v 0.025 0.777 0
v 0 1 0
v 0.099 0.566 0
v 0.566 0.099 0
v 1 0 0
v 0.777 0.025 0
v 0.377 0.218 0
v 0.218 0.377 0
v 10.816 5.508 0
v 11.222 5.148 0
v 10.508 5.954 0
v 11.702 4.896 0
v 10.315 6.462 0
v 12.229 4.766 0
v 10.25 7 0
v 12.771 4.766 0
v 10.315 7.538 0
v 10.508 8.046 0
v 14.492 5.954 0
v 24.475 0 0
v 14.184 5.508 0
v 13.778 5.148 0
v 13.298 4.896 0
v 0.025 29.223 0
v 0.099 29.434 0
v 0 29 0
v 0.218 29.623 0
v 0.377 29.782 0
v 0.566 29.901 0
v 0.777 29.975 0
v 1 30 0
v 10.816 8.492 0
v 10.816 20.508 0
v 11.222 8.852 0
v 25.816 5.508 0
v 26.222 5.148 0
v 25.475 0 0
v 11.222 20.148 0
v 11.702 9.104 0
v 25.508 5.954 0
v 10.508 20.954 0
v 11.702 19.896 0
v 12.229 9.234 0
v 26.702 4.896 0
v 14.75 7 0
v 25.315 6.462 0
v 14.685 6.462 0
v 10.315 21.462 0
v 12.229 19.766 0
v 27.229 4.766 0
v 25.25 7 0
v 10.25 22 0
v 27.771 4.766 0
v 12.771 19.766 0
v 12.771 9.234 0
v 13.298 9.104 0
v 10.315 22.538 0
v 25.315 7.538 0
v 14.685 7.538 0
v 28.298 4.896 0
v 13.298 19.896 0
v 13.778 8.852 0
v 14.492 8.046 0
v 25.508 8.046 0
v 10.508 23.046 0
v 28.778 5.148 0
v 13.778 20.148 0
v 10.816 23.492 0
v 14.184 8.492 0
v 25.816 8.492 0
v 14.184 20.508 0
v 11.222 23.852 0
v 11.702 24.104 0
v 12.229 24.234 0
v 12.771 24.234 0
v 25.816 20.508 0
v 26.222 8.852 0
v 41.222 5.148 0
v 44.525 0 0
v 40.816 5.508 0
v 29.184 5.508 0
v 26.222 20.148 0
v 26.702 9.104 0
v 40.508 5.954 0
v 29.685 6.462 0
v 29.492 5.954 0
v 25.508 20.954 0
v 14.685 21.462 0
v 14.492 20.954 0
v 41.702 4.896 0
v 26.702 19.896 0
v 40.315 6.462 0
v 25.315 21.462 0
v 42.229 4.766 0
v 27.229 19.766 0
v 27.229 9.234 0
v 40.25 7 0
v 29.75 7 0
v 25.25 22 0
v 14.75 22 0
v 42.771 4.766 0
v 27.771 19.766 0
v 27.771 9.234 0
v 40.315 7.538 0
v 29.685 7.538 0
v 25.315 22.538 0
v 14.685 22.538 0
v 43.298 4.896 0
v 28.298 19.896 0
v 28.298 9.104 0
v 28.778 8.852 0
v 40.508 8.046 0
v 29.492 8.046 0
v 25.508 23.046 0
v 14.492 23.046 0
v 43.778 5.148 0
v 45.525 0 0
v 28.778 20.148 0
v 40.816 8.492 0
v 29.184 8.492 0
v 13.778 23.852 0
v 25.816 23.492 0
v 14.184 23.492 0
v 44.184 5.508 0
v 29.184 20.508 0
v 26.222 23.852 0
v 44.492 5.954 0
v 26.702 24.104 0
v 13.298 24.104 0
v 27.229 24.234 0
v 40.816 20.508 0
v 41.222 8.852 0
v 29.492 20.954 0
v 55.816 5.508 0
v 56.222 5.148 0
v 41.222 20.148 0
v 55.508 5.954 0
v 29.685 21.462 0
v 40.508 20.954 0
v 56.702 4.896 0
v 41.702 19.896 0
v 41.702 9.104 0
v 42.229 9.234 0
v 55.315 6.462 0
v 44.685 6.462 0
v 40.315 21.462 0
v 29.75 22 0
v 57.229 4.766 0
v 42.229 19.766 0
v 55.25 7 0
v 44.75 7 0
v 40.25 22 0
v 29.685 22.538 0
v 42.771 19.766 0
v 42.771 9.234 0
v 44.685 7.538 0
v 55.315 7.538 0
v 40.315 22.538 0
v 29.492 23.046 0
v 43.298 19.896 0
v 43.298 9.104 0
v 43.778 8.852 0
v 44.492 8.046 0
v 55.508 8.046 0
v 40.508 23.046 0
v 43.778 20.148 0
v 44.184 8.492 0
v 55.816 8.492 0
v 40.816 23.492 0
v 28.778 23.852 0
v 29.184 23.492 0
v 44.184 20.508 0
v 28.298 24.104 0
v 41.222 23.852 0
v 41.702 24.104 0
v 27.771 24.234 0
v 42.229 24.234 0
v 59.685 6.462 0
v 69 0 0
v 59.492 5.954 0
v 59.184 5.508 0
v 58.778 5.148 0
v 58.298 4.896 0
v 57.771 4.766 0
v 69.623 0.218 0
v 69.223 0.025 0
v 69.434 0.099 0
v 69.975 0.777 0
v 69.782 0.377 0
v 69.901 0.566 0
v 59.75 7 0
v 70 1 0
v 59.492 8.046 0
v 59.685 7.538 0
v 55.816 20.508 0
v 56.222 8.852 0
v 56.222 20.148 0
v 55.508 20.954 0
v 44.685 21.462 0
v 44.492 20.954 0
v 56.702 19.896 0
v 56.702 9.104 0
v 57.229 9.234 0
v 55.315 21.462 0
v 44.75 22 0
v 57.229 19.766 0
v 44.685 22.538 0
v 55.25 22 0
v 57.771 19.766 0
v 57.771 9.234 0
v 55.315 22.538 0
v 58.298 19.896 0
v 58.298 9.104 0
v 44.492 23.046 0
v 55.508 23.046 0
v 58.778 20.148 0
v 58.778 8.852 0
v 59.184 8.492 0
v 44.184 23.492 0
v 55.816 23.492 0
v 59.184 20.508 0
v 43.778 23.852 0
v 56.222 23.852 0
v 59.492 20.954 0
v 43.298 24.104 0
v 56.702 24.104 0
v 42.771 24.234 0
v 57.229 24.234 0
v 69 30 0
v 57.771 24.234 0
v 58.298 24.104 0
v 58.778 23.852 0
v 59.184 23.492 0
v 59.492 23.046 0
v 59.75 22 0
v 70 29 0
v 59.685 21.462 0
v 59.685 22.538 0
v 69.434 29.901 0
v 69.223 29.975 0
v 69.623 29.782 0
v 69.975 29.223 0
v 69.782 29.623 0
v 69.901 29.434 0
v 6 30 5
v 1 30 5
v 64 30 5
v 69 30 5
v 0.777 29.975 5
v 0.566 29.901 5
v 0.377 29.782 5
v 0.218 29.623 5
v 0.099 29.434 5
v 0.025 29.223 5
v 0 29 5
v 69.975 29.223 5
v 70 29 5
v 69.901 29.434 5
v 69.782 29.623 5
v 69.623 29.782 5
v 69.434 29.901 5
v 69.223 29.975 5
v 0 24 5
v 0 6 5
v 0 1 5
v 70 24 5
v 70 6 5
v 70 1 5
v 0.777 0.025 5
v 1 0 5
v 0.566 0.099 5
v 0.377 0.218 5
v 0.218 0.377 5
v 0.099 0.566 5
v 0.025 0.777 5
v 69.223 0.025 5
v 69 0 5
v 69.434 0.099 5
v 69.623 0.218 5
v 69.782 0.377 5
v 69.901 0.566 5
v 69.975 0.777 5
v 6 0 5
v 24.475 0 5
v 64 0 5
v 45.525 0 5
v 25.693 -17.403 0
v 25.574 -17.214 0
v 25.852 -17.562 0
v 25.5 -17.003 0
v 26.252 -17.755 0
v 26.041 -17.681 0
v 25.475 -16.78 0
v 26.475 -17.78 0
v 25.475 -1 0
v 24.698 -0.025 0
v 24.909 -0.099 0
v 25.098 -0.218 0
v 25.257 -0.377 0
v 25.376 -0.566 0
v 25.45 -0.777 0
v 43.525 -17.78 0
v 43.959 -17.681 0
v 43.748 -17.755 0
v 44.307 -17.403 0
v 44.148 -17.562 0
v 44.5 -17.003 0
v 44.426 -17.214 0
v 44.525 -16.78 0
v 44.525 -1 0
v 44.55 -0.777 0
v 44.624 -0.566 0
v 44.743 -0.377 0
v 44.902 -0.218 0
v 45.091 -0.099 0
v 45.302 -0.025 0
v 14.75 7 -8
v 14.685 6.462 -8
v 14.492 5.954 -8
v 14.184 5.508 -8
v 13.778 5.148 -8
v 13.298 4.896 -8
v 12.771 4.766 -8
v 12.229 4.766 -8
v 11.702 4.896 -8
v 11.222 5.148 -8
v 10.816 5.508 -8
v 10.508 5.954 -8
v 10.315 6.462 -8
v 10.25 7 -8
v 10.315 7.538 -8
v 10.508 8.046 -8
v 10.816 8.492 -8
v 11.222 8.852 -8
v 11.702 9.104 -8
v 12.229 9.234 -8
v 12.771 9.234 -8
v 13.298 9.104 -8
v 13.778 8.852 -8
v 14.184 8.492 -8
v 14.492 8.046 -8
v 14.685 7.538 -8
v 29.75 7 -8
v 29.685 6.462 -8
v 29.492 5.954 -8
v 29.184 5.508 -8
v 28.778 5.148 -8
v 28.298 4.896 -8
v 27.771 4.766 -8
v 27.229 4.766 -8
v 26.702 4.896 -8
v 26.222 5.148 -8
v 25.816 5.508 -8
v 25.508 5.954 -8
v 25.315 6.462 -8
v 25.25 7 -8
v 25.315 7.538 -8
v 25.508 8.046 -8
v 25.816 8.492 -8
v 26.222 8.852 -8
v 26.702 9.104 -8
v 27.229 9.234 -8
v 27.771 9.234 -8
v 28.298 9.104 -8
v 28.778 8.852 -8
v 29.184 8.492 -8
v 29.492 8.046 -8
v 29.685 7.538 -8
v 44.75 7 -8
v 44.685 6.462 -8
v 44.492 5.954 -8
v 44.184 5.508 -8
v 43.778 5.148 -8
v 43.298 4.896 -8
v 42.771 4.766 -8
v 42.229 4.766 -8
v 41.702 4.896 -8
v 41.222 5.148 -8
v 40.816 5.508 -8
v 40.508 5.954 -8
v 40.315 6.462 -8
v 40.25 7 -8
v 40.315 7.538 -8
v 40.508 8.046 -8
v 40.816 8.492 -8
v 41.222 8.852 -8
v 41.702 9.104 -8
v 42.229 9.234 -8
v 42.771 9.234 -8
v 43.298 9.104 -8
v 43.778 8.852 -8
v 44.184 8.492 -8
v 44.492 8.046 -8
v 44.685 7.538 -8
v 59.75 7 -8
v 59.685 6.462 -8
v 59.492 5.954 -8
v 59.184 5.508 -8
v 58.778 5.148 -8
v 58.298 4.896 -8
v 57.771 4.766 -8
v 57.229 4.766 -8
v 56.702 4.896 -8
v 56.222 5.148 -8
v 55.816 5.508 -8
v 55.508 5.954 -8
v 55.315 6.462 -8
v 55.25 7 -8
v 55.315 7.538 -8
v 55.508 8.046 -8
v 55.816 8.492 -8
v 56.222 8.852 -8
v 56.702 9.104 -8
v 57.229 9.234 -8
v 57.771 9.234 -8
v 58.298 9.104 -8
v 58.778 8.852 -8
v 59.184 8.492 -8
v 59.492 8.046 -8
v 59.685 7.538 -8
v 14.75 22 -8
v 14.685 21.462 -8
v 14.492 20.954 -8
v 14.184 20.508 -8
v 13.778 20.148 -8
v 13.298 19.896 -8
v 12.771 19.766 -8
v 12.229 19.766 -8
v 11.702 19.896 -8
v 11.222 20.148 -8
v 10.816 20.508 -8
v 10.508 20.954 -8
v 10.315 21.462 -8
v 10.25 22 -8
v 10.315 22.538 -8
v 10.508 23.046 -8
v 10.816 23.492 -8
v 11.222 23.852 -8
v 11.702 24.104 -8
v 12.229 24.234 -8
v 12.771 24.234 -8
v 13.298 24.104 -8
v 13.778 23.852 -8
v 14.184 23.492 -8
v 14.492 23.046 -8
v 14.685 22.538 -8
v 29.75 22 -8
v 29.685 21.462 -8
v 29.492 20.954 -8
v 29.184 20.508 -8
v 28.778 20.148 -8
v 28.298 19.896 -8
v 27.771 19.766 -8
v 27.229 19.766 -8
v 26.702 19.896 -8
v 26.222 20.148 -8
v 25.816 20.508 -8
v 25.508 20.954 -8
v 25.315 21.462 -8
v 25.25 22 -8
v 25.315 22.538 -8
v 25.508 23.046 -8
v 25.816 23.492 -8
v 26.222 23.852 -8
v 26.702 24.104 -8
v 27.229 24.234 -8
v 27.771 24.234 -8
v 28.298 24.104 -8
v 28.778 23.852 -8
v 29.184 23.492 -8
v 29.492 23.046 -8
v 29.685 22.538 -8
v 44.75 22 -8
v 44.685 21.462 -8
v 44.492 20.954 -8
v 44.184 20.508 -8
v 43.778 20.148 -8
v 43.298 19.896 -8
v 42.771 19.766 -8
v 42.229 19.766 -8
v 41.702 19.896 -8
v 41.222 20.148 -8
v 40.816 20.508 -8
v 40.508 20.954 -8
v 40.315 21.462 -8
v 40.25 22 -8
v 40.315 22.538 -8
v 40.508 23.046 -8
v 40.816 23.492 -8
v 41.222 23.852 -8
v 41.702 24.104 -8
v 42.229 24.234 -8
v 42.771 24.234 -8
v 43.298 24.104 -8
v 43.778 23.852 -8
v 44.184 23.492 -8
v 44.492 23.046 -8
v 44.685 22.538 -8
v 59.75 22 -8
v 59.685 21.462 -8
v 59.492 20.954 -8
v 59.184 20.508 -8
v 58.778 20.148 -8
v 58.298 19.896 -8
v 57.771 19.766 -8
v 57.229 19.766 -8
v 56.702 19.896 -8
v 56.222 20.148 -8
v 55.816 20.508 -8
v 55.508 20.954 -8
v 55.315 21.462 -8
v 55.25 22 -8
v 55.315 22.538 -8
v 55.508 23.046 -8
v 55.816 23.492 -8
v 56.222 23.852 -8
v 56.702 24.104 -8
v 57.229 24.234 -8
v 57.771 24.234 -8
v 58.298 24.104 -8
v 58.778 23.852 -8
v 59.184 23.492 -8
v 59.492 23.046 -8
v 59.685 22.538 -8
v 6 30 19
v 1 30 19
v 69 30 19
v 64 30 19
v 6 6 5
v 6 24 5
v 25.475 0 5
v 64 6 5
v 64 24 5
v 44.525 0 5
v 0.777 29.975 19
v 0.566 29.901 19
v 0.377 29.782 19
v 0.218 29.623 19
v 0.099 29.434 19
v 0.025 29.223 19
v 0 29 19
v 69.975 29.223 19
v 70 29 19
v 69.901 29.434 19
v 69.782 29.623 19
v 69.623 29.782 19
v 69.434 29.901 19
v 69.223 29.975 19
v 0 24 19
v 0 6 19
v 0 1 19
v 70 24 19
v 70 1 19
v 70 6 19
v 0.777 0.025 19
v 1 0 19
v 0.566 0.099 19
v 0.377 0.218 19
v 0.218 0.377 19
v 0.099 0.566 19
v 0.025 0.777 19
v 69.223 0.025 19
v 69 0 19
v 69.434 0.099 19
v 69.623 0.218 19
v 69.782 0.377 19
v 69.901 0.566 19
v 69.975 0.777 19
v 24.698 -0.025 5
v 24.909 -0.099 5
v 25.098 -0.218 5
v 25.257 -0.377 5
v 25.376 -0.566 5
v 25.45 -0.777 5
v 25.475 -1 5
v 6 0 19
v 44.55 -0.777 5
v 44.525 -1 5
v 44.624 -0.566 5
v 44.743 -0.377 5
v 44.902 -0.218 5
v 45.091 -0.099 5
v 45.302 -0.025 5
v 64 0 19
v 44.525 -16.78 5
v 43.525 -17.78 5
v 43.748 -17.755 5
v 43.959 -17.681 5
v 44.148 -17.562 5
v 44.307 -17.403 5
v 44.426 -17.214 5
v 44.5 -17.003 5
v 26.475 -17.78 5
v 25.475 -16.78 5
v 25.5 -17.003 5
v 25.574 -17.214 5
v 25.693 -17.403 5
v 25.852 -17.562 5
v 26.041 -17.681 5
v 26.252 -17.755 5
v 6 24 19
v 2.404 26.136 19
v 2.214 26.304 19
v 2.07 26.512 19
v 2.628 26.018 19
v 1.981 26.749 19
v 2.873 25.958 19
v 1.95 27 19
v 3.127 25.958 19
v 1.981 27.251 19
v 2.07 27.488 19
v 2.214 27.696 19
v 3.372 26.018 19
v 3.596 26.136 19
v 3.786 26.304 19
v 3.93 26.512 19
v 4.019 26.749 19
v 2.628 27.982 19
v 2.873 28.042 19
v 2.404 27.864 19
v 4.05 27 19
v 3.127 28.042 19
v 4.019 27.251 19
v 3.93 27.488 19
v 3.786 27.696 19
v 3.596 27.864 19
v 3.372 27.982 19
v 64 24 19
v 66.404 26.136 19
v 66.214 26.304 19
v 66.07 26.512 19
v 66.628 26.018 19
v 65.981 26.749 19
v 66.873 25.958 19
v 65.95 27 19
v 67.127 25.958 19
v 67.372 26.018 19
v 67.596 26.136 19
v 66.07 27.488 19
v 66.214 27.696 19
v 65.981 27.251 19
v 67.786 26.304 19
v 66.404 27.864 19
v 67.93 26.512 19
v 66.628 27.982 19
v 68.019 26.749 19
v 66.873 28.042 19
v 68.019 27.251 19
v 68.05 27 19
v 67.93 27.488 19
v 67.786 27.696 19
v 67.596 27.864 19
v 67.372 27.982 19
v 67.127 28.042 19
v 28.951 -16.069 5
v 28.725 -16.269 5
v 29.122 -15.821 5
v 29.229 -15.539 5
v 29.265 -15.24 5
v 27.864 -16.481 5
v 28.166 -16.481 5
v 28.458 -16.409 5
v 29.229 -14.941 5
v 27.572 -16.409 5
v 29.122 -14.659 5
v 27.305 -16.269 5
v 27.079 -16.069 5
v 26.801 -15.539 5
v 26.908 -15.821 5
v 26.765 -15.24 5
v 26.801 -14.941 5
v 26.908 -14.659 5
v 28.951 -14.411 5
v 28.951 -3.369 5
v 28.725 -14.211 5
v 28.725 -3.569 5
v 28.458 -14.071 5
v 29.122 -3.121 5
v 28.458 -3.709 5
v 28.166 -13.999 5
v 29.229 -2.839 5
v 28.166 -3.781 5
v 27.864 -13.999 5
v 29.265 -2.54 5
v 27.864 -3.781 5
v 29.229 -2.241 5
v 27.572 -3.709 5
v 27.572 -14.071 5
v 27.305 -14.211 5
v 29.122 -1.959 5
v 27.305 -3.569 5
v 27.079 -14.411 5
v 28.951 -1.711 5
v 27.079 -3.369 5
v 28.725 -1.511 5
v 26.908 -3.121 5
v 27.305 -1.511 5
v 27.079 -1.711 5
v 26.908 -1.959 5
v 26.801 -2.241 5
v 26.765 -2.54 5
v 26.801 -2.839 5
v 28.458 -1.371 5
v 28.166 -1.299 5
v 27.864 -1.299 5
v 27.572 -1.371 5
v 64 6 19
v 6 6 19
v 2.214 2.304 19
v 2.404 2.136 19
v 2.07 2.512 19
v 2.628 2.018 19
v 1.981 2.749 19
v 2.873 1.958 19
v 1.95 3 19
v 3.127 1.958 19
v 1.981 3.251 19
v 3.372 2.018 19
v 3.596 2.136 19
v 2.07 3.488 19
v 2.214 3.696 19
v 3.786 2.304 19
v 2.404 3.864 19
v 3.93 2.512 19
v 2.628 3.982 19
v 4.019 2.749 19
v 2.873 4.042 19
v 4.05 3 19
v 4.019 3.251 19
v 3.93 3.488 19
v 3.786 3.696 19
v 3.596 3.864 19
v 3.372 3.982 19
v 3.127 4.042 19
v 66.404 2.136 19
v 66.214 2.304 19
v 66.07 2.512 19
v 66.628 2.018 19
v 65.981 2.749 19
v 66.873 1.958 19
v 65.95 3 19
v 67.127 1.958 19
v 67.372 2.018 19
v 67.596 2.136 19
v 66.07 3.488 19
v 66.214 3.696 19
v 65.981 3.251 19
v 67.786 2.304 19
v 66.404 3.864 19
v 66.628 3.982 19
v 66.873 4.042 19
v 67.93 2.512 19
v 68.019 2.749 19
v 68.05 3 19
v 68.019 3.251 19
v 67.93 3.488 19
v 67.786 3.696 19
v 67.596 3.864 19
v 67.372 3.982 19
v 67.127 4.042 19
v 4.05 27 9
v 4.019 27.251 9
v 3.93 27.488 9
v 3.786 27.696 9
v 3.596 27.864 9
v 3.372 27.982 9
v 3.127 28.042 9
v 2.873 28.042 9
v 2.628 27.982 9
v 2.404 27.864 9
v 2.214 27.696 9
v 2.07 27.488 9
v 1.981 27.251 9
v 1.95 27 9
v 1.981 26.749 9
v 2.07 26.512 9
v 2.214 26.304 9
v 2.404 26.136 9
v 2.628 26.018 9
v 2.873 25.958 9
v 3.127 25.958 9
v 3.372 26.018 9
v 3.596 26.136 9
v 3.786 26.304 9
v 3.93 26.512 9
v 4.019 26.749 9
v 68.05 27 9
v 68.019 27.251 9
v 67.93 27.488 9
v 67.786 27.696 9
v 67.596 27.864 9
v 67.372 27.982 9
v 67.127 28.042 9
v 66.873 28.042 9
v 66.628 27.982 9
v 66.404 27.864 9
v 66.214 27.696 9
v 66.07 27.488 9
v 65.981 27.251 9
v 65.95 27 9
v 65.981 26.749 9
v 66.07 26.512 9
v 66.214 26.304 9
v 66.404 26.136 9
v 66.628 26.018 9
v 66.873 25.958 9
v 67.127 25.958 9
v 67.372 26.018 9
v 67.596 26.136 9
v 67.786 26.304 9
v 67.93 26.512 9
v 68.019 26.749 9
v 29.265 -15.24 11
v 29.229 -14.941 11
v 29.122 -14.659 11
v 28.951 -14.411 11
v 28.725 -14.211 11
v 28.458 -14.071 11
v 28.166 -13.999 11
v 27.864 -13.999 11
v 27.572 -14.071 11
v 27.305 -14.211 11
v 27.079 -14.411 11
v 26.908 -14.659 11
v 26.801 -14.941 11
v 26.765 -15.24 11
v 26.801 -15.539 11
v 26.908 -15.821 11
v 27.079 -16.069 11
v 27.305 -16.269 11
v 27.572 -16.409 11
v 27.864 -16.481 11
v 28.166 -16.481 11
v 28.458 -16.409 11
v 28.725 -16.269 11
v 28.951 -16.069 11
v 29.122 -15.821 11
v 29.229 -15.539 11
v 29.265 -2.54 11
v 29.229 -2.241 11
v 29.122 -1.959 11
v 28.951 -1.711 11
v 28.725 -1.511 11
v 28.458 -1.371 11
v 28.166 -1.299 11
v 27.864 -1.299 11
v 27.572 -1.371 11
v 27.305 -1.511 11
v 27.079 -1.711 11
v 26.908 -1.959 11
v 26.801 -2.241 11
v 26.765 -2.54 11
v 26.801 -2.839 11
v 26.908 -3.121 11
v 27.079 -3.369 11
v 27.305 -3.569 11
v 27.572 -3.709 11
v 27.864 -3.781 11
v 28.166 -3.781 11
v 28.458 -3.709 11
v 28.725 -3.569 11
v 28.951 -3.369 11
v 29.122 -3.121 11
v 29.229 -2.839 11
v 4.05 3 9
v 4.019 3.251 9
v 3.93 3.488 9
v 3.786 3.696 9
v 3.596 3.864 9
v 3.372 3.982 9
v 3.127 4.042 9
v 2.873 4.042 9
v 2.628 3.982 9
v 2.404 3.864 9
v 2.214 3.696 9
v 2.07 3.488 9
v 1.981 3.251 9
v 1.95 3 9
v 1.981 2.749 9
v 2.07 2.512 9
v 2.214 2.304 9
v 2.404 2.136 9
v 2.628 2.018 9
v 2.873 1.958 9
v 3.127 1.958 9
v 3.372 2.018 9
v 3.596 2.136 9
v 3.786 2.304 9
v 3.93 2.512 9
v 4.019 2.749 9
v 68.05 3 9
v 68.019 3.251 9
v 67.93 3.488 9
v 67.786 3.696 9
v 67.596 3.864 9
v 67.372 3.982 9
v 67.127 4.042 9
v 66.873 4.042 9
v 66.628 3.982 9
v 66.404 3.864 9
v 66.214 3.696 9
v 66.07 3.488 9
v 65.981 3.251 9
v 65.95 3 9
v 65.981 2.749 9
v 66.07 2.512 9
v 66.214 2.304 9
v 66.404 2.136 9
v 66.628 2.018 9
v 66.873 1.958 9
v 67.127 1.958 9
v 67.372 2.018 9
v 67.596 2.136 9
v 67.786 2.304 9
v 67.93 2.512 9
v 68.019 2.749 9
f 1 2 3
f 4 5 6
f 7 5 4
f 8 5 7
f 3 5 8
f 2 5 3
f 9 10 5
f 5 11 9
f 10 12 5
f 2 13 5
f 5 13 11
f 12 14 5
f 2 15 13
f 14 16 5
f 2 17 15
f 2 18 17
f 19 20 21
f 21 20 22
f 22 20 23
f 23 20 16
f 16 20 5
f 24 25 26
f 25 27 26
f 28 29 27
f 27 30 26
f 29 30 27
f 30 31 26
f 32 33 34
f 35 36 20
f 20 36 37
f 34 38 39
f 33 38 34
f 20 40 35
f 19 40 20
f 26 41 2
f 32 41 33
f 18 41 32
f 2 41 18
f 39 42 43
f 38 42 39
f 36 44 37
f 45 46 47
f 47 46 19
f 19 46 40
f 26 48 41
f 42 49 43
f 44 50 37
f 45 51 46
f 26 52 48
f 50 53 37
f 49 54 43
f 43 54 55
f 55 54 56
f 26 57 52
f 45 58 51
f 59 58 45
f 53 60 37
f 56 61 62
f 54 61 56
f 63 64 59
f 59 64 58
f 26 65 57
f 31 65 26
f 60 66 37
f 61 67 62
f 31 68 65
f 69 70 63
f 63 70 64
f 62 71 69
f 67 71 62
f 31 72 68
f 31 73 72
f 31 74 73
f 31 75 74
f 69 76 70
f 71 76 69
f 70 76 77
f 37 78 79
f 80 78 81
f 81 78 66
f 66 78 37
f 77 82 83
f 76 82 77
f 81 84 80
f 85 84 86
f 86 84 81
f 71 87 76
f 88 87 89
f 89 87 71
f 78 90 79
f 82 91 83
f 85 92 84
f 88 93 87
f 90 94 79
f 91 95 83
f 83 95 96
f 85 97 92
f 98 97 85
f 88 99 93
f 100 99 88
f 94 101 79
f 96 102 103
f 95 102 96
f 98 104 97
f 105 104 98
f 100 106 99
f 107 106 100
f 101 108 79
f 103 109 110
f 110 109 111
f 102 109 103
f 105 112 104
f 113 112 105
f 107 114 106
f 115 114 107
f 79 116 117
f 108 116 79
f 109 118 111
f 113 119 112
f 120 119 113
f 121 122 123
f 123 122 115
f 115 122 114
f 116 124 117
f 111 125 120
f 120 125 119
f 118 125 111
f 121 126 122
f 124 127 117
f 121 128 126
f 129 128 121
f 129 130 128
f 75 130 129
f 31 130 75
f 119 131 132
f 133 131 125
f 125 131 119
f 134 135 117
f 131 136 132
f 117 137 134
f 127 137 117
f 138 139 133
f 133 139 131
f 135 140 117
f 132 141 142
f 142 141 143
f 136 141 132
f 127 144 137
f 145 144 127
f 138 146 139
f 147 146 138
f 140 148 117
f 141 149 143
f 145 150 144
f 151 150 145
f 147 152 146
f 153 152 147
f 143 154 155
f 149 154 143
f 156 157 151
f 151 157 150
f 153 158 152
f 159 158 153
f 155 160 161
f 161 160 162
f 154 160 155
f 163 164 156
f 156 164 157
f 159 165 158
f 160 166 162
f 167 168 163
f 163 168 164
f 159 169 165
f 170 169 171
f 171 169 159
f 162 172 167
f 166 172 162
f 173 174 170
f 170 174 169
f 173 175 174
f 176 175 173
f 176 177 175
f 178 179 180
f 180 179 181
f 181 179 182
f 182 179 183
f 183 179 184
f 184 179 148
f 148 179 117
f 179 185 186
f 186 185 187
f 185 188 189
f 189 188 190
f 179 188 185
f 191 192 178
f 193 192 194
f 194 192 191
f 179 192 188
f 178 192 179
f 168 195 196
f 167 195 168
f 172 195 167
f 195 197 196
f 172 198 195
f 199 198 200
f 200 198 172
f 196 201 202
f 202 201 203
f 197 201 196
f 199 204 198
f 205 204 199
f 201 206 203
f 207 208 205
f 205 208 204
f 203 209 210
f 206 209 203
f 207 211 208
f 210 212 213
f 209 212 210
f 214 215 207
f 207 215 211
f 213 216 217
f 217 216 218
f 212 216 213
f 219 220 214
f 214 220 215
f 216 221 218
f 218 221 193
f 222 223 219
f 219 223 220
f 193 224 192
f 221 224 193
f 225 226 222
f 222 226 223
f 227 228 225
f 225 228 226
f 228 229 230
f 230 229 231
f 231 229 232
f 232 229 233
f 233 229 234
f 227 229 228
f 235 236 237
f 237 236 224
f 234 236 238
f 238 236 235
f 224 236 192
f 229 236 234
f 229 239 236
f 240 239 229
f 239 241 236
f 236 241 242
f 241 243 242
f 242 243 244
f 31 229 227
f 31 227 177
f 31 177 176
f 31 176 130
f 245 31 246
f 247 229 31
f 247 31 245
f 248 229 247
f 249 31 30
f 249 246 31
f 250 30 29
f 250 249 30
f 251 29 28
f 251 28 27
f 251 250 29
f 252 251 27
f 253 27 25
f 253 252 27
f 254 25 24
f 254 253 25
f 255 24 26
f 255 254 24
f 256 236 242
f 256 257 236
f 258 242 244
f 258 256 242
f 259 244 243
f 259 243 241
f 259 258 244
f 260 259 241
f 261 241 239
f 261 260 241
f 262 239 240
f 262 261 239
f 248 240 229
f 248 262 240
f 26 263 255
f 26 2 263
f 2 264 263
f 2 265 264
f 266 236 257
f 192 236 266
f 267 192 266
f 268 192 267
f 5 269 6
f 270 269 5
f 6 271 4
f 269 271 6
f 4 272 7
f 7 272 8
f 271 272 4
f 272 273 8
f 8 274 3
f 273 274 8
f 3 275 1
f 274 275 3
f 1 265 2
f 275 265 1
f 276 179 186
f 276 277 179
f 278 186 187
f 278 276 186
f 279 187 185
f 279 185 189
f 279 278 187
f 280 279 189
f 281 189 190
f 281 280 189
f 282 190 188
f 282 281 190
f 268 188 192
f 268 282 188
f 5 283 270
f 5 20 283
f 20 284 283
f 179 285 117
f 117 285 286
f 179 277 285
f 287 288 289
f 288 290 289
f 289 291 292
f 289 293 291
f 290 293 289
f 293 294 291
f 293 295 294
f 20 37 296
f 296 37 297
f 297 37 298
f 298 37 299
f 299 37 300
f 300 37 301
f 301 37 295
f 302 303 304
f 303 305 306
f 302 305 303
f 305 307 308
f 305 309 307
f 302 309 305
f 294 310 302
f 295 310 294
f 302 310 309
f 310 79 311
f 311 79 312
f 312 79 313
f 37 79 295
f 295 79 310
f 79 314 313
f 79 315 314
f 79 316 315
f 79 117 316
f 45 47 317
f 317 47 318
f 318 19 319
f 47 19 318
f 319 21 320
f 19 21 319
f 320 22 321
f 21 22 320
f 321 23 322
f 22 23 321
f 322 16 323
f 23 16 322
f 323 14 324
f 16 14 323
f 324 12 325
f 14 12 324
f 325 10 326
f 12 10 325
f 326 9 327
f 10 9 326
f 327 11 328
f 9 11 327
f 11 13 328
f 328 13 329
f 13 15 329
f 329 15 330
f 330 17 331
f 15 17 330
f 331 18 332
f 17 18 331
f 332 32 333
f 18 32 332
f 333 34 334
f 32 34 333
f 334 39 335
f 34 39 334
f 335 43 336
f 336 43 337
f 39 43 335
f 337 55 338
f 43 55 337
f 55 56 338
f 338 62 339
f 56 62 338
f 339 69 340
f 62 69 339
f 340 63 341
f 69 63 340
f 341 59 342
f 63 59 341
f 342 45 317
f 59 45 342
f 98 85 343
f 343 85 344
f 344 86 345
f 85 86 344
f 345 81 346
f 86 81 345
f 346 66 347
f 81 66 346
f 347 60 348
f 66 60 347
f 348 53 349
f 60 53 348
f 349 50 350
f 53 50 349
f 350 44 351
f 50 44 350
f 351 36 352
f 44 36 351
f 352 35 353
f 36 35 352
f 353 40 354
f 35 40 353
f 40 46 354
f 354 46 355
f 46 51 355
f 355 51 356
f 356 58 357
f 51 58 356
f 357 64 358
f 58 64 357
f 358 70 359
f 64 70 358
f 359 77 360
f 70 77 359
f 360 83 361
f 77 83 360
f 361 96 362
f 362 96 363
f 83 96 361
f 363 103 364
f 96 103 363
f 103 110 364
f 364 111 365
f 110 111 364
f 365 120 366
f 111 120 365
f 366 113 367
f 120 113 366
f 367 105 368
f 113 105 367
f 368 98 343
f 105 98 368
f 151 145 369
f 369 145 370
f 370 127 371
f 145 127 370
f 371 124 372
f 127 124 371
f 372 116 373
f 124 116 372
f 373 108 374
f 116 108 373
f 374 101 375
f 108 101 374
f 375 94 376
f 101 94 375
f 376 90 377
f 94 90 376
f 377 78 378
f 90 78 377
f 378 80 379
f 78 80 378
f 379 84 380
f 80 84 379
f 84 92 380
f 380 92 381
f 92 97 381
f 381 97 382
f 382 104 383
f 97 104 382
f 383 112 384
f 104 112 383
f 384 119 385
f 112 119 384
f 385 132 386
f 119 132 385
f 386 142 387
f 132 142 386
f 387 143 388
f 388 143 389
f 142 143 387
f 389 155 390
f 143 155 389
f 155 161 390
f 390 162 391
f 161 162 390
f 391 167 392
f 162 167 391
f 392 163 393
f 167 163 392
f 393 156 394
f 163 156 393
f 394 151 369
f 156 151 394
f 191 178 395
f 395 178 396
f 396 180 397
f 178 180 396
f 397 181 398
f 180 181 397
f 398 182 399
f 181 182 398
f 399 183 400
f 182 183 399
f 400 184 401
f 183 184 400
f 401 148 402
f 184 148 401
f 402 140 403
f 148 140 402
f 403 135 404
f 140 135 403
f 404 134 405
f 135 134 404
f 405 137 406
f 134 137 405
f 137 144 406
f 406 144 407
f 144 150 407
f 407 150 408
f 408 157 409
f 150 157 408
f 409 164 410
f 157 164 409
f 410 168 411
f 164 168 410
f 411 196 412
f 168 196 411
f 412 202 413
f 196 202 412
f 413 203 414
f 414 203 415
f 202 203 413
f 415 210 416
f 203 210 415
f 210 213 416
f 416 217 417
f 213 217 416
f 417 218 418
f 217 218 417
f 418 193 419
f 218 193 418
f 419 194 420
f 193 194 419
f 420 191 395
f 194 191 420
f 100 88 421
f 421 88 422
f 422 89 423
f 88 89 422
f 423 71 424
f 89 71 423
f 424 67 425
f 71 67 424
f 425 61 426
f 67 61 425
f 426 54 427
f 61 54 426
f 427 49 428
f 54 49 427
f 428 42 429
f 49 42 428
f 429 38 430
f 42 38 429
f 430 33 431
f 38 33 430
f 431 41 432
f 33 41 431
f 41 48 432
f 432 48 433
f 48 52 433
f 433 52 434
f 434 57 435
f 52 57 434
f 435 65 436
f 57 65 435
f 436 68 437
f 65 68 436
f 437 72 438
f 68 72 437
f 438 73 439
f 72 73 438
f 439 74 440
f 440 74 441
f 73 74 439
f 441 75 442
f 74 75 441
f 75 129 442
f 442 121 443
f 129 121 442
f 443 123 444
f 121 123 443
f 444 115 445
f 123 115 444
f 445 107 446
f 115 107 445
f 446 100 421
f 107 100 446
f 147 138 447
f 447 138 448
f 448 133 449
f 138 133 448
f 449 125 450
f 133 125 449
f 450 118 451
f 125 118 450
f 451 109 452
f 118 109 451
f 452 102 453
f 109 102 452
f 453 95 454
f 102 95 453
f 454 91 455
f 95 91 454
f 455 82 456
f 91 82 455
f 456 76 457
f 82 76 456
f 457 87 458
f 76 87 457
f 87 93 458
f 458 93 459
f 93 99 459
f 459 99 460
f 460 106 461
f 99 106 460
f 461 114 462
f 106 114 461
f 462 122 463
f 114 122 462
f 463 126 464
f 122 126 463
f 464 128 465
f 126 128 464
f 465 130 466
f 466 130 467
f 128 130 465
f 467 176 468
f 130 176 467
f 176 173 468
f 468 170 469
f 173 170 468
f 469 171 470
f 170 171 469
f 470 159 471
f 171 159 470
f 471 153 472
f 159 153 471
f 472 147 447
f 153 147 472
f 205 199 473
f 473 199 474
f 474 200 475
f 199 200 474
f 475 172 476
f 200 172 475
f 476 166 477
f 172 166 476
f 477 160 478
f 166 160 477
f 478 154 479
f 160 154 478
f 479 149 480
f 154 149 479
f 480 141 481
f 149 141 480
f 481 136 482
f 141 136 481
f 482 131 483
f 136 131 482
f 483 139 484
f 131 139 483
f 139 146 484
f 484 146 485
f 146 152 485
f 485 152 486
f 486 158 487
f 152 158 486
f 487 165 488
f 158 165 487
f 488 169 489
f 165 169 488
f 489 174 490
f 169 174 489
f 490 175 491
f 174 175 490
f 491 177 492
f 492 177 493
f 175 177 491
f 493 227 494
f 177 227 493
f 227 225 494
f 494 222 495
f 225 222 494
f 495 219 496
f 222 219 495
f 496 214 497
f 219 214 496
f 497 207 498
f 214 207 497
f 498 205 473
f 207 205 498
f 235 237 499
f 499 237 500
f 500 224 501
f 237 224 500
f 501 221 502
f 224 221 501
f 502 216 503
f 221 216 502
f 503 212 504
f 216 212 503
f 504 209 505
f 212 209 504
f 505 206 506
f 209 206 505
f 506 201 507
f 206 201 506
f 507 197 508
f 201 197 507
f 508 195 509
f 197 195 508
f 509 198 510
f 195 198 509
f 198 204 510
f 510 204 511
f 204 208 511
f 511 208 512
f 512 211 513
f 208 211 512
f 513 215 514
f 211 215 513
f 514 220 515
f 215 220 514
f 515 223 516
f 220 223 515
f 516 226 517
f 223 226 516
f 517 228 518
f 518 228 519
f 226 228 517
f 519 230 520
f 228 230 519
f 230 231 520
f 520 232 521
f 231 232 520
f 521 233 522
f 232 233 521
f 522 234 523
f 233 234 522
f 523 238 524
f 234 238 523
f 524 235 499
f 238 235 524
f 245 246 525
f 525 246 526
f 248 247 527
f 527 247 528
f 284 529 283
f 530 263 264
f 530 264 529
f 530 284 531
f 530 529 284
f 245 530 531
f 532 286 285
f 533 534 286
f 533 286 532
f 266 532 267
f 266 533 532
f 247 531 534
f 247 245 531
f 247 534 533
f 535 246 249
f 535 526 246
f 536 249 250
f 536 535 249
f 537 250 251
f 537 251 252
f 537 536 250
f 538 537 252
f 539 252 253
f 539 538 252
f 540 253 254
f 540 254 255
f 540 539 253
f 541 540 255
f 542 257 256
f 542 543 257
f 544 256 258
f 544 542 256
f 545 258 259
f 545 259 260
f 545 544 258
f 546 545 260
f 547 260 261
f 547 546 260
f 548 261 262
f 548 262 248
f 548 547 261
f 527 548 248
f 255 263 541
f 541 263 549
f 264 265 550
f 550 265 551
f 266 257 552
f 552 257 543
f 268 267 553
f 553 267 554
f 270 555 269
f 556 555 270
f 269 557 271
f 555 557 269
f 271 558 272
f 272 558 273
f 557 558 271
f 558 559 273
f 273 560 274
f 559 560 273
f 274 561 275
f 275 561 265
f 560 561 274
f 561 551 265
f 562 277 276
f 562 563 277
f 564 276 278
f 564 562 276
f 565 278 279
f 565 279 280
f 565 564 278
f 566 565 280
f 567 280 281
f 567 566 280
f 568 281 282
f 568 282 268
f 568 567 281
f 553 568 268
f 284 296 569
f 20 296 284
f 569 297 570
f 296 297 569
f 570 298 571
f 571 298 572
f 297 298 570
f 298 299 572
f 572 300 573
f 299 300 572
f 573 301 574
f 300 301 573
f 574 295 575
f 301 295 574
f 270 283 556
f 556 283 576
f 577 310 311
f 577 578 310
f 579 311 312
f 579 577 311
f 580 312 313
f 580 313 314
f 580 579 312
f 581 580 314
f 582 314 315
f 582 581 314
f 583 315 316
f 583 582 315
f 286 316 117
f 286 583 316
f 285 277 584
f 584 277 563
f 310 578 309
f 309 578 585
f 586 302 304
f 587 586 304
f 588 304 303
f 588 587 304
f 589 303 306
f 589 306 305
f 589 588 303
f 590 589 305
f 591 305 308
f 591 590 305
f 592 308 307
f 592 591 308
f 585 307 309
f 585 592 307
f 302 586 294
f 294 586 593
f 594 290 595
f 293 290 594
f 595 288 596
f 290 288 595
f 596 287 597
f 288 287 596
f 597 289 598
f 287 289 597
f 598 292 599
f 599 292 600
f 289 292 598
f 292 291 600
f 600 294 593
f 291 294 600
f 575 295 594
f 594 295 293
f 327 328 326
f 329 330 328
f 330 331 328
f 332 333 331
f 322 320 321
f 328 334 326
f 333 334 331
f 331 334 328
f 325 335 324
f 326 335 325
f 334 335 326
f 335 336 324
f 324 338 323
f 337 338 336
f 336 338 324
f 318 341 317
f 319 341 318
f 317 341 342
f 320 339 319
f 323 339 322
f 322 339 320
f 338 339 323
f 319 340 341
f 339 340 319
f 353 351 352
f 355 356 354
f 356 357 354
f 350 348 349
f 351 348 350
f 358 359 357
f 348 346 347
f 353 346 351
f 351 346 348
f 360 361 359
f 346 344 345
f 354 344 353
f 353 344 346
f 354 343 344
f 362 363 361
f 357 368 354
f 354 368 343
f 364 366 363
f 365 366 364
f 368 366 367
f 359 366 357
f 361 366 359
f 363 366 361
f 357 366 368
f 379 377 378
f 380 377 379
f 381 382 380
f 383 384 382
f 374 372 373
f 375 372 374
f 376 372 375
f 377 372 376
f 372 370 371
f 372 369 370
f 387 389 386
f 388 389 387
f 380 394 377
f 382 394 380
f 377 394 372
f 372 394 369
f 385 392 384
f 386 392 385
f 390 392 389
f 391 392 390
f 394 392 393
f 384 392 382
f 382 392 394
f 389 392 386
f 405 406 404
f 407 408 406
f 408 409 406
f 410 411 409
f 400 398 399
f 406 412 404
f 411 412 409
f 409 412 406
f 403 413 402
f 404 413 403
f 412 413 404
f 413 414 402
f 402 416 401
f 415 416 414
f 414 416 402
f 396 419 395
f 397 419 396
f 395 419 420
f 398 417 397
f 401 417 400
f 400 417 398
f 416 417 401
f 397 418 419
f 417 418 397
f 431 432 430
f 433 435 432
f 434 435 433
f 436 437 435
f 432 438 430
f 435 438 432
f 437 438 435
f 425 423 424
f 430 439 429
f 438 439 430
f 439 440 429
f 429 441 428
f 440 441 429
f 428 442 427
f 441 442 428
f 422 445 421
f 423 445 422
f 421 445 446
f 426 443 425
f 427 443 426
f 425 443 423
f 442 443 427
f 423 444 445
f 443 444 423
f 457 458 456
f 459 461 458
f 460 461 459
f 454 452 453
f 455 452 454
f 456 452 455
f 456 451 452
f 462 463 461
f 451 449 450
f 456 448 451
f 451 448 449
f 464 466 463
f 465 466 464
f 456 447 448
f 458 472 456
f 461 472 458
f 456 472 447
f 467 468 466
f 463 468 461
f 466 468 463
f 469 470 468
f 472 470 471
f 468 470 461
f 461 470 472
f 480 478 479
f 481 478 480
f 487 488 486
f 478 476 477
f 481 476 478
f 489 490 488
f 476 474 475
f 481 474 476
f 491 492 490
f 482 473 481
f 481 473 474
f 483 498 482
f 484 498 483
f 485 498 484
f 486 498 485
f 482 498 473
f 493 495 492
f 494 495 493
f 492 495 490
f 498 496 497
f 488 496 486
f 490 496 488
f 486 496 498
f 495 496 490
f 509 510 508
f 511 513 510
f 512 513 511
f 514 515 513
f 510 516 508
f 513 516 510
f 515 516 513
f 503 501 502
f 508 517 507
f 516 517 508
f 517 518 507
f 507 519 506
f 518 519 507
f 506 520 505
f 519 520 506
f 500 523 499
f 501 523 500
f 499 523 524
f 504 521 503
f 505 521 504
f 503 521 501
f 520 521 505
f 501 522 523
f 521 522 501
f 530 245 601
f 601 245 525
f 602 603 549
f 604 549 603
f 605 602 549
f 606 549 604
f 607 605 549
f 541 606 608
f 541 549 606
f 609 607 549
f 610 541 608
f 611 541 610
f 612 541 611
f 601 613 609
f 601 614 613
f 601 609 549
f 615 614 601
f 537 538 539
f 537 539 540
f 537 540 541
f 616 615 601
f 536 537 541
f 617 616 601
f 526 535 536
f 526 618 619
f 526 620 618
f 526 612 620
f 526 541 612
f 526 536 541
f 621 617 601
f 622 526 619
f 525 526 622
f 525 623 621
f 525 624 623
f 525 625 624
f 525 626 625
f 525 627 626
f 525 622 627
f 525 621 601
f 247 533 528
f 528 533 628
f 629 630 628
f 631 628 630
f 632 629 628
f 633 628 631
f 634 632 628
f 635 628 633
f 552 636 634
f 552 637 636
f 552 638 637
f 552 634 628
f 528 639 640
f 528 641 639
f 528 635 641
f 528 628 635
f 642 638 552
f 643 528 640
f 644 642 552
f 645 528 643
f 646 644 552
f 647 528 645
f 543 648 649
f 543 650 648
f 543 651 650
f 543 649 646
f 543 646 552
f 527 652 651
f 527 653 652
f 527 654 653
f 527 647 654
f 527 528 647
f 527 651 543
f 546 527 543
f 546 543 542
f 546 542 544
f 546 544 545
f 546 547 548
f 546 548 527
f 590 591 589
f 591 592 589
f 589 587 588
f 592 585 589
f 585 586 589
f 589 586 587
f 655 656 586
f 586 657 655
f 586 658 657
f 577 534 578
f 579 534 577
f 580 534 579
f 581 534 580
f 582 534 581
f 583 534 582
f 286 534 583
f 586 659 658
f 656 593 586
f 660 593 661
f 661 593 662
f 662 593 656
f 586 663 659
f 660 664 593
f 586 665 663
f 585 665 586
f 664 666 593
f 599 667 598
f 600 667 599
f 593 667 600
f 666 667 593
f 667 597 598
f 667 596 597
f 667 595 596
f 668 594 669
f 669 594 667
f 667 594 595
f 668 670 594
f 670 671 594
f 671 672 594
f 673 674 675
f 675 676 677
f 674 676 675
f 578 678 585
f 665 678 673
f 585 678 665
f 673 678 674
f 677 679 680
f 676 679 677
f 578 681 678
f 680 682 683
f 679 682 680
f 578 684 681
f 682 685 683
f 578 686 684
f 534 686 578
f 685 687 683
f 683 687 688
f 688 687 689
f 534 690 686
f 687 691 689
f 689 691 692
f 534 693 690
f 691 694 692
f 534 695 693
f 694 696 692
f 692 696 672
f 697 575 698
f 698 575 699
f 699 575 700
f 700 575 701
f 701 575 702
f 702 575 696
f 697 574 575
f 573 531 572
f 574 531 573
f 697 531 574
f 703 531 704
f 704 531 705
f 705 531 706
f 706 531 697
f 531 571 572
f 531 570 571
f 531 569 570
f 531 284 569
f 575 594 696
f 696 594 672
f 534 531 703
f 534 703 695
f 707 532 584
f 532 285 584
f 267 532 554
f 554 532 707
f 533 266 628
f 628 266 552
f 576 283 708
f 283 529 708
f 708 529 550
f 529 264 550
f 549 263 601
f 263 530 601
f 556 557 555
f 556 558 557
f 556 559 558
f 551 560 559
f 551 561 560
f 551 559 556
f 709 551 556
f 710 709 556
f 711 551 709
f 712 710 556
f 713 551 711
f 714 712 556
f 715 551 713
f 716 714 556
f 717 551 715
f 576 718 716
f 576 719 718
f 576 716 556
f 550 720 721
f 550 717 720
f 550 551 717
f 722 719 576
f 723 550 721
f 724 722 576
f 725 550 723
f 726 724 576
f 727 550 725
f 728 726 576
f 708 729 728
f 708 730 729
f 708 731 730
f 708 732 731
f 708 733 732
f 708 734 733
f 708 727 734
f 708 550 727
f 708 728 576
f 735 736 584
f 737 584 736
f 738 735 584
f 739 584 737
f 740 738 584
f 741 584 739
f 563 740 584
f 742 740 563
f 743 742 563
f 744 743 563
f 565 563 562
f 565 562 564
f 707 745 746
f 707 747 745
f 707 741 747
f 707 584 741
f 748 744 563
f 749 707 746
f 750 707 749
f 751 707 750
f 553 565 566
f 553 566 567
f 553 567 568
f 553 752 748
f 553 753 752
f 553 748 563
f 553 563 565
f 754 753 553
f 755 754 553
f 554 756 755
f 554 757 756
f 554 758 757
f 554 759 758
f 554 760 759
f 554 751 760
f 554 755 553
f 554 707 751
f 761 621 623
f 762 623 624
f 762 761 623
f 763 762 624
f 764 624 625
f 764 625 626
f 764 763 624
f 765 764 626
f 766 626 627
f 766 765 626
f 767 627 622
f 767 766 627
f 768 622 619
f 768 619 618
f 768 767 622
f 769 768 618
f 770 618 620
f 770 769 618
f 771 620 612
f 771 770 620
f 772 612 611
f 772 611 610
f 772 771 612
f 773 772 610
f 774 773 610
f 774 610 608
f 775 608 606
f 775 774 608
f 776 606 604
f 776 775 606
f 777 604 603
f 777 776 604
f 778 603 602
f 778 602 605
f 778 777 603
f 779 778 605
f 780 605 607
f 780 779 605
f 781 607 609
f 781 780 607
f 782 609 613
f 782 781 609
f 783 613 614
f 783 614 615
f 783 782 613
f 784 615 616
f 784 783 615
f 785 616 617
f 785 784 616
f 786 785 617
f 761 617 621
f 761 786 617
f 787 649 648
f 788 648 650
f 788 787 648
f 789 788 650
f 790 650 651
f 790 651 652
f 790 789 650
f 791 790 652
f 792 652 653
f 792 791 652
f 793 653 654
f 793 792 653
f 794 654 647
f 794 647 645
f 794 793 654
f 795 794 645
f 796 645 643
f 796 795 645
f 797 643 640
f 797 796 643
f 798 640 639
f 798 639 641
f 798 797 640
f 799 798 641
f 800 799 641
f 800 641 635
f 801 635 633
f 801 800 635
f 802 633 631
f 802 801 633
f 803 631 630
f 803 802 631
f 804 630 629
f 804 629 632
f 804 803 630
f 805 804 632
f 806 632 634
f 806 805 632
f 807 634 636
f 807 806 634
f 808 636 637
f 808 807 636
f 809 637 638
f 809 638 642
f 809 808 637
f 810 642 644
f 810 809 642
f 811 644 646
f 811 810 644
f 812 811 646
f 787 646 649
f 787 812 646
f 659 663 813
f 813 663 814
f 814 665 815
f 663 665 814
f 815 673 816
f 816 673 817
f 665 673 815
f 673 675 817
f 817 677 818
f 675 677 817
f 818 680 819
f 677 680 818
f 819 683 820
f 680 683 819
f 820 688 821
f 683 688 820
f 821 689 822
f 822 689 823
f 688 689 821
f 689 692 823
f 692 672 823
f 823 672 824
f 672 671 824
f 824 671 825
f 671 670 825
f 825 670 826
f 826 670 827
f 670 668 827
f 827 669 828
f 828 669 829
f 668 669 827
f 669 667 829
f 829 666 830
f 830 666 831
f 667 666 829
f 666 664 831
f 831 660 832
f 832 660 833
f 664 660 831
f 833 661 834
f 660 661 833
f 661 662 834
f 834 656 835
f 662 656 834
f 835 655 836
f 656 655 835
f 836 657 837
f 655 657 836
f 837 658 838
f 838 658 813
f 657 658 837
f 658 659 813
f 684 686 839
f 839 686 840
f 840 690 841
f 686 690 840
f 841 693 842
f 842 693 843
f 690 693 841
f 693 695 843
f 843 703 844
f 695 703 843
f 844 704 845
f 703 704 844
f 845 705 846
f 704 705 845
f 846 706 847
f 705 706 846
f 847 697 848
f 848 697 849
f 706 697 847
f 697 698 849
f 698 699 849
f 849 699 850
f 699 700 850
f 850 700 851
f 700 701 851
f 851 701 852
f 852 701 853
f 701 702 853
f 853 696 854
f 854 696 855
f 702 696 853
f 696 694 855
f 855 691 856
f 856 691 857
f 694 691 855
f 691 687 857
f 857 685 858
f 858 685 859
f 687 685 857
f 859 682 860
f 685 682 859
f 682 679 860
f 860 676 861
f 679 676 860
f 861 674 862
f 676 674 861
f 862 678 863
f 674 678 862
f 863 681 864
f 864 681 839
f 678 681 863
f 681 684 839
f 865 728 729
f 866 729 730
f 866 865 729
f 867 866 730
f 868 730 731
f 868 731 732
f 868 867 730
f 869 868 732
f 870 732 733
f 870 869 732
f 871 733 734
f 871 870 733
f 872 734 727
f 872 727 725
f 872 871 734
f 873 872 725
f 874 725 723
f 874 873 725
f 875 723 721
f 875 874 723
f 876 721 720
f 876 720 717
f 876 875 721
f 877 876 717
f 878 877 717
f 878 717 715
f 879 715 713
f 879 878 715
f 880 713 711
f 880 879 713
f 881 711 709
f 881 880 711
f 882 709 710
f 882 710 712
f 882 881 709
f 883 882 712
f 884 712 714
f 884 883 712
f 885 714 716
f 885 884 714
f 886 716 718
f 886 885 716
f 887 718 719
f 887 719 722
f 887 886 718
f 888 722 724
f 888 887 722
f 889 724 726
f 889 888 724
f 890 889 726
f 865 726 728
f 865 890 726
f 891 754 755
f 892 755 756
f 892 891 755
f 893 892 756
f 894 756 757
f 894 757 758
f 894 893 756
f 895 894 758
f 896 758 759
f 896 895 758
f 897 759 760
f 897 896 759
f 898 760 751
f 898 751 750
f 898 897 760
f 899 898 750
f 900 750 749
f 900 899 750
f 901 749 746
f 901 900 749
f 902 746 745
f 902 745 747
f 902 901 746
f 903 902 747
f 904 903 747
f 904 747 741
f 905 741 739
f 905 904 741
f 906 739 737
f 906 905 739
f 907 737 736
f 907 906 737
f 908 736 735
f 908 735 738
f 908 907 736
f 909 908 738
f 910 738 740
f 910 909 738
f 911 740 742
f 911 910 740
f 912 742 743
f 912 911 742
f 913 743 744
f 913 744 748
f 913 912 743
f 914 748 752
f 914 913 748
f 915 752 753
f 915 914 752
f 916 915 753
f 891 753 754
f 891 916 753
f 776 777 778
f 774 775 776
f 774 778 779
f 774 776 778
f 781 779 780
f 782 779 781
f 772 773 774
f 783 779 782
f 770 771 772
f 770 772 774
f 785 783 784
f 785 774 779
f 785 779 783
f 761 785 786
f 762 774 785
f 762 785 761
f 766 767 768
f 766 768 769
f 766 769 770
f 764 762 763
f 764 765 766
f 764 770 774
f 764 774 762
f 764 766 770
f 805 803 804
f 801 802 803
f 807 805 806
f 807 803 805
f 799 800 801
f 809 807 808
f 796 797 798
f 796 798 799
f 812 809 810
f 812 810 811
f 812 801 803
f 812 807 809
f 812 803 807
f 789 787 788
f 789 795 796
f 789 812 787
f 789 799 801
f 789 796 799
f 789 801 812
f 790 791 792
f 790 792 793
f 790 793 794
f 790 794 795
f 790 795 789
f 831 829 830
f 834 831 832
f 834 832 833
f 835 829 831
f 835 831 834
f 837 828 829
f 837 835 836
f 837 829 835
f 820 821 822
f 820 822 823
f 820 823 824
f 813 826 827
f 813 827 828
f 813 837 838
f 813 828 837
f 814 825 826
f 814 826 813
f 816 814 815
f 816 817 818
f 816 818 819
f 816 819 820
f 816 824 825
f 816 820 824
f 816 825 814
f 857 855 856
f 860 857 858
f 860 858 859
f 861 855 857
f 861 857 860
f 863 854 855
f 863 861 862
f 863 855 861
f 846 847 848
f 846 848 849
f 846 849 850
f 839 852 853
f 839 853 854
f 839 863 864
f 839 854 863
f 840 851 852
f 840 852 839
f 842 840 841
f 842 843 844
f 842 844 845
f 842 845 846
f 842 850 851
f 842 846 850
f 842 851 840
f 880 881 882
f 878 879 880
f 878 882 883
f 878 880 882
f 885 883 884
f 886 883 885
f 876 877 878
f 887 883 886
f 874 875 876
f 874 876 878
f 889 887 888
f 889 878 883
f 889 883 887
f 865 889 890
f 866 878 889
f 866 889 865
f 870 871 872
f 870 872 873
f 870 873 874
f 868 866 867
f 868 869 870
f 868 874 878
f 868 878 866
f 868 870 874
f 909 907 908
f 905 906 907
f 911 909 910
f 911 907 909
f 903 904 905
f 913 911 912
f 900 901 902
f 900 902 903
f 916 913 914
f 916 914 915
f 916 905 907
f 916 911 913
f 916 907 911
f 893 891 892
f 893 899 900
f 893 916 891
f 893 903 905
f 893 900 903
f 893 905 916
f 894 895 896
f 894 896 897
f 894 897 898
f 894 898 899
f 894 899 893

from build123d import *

# Parameters (mm, degrees)
SKETCH003_W      = 19.05
SKETCH003_H      = 5
EXTRUDE004_DEPTH = 17.78
SKETCH002_R      = 2.25
EXTRUDE003_DEPTH = 8
SKETCH001_R      = 1.05
EXTRUDE001_DEPTH = 10
SKETCH_W         = 6
SKETCH_H         = 6
EXTRUDE_DEPTH    = 14
BOX_W            = 70
BOX_H            = 30
BOX_DEPTH        = 5
SKETCH004_R      = 1.25
EXTRUDE006_DEPTH = 6
FILLET_R         = 1
FILLET001_R      = 1
FILLET002_R      = 1
FILLET003_R      = 1
FILLET004_R      = 1
FILLET005_R      = 1
FILLET006_R      = 1


with BuildPart() as extrude004:
    # Sketch003 (on Face2 of Fusion001) → Extrude004 (new body)
    with BuildSketch(Plane.XZ):
        with Locations((35, 2.5)):
            Rectangle(SKETCH003_W, SKETCH003_H)
    extrude(amount=EXTRUDE004_DEPTH)


with BuildPart() as extrude003:
    # Sketch002 (on Face7 of Fusion) → Extrude003 (new body)
    with BuildSketch(Plane(origin=(0, 0, 0), x_dir=(1, 0, 0), z_dir=(0, 0, -1))):
        with Locations((42.5, -7)):
            Circle(SKETCH002_R)
        with Locations((27.5, -7)):
            Circle(SKETCH002_R)
        with Locations((57.5, -7)):
            Circle(SKETCH002_R)
        with Locations((12.5, -7)):
            Circle(SKETCH002_R)
        with Locations((42.5, -22)):
            Circle(SKETCH002_R)
        with Locations((57.5, -22)):
            Circle(SKETCH002_R)
        with Locations((12.5, -22)):
            Circle(SKETCH002_R)
        with Locations((27.5, -22)):
            Circle(SKETCH002_R)
    extrude(amount=EXTRUDE003_DEPTH)


with BuildPart() as extrude001:
    # Sketch001 (on Face24 of Extrude) → Extrude001 (new body)
    with BuildSketch(Plane.XY.offset(19)):
        with Locations((3, 27)):
            Circle(SKETCH001_R)
        with Locations((3, 3)):
            Circle(SKETCH001_R)
        with Locations((67, 3)):
            Circle(SKETCH001_R)
        with Locations((67, 27)):
            Circle(SKETCH001_R)
    extrude(amount=-EXTRUDE001_DEPTH)


with BuildPart() as cut:
    # Sketch (on Face6 of Box) → Extrude (new body)
    with BuildSketch(Plane.XY.offset(5)):
        with Locations((3, 27)):
            Rectangle(SKETCH_W, SKETCH_H)
        with Locations((3, 3)):
            Rectangle(SKETCH_W, SKETCH_H)
        with Locations((67, 3)):
            Rectangle(SKETCH_W, SKETCH_H)
        with Locations((67, 27)):
            Rectangle(SKETCH_W, SKETCH_H)
    extrude(amount=EXTRUDE_DEPTH)

    # Cut: cut Extrude001
    add(extrude001.part, mode=Mode.SUBTRACT)


with BuildPart() as fusion001:
    # Box → Box (new body)
    with BuildSketch(Plane.XY):
        with Locations((35, 15)):
            Rectangle(BOX_W, BOX_H)
    extrude(amount=BOX_DEPTH)

    # Fusion: union Cut
    add(cut.part)

    # Fusion001: union Extrude003
    add(extrude003.part)


with BuildPart() as speaker_plate:
    # Sketch004 (on Face4 of Extrude004) → Extrude006 (new body)
    with BuildSketch(Plane.XY.offset(5)):
        with Locations((28.015, -2.54)):
            Circle(SKETCH004_R)
        with Locations((28.015, -15.24)):
            Circle(SKETCH004_R)
    extrude(amount=EXTRUDE006_DEPTH)

    # Fusion002: union Extrude004, Fusion001
    add(extrude004.part)
    add(fusion001.part)

    # Fillet
    fillet_edges = [speaker_plate.edges().sort_by_distance(p)[0] for p in [
        (0, 0, 2.5),
        (0, 0, 12),
    ]]
    fillet(fillet_edges, radius=FILLET_R)

    # Fillet001
    fillet001_edges = [speaker_plate.edges().sort_by_distance(p)[0] for p in [
        (25.475, 0, 2.5),
        (25.475, -17.78, 2.5),
    ]]
    fillet(fillet001_edges, radius=FILLET001_R)

    # Fillet002
    fillet002_edges = [speaker_plate.edges().sort_by_distance(p)[0] for p in [
        (44.525, -17.78, 2.5),
    ]]
    fillet(fillet002_edges, radius=FILLET002_R)

    # Fillet003
    fillet003_edges = [speaker_plate.edges().sort_by_distance(p)[0] for p in [
        (44.525, 0, 2.5),
    ]]
    fillet(fillet003_edges, radius=FILLET003_R)

    # Fillet004
    fillet004_edges = [speaker_plate.edges().sort_by_distance(p)[0] for p in [
        (70, 0, 2.5),
        (70, 0, 12),
    ]]
    fillet(fillet004_edges, radius=FILLET004_R)

    # Fillet005
    fillet005_edges = [speaker_plate.edges().sort_by_distance(p)[0] for p in [
        (70, 30, 2.5),
        (70, 30, 12),
    ]]
    fillet(fillet005_edges, radius=FILLET005_R)

    # Fillet006
    fillet006_edges = [speaker_plate.edges().sort_by_distance(p)[0] for p in [
        (0, 30, 2.5),
        (0, 30, 12),
    ]]
    fillet(fillet006_edges, radius=FILLET006_R)


solid = speaker_plate.part
